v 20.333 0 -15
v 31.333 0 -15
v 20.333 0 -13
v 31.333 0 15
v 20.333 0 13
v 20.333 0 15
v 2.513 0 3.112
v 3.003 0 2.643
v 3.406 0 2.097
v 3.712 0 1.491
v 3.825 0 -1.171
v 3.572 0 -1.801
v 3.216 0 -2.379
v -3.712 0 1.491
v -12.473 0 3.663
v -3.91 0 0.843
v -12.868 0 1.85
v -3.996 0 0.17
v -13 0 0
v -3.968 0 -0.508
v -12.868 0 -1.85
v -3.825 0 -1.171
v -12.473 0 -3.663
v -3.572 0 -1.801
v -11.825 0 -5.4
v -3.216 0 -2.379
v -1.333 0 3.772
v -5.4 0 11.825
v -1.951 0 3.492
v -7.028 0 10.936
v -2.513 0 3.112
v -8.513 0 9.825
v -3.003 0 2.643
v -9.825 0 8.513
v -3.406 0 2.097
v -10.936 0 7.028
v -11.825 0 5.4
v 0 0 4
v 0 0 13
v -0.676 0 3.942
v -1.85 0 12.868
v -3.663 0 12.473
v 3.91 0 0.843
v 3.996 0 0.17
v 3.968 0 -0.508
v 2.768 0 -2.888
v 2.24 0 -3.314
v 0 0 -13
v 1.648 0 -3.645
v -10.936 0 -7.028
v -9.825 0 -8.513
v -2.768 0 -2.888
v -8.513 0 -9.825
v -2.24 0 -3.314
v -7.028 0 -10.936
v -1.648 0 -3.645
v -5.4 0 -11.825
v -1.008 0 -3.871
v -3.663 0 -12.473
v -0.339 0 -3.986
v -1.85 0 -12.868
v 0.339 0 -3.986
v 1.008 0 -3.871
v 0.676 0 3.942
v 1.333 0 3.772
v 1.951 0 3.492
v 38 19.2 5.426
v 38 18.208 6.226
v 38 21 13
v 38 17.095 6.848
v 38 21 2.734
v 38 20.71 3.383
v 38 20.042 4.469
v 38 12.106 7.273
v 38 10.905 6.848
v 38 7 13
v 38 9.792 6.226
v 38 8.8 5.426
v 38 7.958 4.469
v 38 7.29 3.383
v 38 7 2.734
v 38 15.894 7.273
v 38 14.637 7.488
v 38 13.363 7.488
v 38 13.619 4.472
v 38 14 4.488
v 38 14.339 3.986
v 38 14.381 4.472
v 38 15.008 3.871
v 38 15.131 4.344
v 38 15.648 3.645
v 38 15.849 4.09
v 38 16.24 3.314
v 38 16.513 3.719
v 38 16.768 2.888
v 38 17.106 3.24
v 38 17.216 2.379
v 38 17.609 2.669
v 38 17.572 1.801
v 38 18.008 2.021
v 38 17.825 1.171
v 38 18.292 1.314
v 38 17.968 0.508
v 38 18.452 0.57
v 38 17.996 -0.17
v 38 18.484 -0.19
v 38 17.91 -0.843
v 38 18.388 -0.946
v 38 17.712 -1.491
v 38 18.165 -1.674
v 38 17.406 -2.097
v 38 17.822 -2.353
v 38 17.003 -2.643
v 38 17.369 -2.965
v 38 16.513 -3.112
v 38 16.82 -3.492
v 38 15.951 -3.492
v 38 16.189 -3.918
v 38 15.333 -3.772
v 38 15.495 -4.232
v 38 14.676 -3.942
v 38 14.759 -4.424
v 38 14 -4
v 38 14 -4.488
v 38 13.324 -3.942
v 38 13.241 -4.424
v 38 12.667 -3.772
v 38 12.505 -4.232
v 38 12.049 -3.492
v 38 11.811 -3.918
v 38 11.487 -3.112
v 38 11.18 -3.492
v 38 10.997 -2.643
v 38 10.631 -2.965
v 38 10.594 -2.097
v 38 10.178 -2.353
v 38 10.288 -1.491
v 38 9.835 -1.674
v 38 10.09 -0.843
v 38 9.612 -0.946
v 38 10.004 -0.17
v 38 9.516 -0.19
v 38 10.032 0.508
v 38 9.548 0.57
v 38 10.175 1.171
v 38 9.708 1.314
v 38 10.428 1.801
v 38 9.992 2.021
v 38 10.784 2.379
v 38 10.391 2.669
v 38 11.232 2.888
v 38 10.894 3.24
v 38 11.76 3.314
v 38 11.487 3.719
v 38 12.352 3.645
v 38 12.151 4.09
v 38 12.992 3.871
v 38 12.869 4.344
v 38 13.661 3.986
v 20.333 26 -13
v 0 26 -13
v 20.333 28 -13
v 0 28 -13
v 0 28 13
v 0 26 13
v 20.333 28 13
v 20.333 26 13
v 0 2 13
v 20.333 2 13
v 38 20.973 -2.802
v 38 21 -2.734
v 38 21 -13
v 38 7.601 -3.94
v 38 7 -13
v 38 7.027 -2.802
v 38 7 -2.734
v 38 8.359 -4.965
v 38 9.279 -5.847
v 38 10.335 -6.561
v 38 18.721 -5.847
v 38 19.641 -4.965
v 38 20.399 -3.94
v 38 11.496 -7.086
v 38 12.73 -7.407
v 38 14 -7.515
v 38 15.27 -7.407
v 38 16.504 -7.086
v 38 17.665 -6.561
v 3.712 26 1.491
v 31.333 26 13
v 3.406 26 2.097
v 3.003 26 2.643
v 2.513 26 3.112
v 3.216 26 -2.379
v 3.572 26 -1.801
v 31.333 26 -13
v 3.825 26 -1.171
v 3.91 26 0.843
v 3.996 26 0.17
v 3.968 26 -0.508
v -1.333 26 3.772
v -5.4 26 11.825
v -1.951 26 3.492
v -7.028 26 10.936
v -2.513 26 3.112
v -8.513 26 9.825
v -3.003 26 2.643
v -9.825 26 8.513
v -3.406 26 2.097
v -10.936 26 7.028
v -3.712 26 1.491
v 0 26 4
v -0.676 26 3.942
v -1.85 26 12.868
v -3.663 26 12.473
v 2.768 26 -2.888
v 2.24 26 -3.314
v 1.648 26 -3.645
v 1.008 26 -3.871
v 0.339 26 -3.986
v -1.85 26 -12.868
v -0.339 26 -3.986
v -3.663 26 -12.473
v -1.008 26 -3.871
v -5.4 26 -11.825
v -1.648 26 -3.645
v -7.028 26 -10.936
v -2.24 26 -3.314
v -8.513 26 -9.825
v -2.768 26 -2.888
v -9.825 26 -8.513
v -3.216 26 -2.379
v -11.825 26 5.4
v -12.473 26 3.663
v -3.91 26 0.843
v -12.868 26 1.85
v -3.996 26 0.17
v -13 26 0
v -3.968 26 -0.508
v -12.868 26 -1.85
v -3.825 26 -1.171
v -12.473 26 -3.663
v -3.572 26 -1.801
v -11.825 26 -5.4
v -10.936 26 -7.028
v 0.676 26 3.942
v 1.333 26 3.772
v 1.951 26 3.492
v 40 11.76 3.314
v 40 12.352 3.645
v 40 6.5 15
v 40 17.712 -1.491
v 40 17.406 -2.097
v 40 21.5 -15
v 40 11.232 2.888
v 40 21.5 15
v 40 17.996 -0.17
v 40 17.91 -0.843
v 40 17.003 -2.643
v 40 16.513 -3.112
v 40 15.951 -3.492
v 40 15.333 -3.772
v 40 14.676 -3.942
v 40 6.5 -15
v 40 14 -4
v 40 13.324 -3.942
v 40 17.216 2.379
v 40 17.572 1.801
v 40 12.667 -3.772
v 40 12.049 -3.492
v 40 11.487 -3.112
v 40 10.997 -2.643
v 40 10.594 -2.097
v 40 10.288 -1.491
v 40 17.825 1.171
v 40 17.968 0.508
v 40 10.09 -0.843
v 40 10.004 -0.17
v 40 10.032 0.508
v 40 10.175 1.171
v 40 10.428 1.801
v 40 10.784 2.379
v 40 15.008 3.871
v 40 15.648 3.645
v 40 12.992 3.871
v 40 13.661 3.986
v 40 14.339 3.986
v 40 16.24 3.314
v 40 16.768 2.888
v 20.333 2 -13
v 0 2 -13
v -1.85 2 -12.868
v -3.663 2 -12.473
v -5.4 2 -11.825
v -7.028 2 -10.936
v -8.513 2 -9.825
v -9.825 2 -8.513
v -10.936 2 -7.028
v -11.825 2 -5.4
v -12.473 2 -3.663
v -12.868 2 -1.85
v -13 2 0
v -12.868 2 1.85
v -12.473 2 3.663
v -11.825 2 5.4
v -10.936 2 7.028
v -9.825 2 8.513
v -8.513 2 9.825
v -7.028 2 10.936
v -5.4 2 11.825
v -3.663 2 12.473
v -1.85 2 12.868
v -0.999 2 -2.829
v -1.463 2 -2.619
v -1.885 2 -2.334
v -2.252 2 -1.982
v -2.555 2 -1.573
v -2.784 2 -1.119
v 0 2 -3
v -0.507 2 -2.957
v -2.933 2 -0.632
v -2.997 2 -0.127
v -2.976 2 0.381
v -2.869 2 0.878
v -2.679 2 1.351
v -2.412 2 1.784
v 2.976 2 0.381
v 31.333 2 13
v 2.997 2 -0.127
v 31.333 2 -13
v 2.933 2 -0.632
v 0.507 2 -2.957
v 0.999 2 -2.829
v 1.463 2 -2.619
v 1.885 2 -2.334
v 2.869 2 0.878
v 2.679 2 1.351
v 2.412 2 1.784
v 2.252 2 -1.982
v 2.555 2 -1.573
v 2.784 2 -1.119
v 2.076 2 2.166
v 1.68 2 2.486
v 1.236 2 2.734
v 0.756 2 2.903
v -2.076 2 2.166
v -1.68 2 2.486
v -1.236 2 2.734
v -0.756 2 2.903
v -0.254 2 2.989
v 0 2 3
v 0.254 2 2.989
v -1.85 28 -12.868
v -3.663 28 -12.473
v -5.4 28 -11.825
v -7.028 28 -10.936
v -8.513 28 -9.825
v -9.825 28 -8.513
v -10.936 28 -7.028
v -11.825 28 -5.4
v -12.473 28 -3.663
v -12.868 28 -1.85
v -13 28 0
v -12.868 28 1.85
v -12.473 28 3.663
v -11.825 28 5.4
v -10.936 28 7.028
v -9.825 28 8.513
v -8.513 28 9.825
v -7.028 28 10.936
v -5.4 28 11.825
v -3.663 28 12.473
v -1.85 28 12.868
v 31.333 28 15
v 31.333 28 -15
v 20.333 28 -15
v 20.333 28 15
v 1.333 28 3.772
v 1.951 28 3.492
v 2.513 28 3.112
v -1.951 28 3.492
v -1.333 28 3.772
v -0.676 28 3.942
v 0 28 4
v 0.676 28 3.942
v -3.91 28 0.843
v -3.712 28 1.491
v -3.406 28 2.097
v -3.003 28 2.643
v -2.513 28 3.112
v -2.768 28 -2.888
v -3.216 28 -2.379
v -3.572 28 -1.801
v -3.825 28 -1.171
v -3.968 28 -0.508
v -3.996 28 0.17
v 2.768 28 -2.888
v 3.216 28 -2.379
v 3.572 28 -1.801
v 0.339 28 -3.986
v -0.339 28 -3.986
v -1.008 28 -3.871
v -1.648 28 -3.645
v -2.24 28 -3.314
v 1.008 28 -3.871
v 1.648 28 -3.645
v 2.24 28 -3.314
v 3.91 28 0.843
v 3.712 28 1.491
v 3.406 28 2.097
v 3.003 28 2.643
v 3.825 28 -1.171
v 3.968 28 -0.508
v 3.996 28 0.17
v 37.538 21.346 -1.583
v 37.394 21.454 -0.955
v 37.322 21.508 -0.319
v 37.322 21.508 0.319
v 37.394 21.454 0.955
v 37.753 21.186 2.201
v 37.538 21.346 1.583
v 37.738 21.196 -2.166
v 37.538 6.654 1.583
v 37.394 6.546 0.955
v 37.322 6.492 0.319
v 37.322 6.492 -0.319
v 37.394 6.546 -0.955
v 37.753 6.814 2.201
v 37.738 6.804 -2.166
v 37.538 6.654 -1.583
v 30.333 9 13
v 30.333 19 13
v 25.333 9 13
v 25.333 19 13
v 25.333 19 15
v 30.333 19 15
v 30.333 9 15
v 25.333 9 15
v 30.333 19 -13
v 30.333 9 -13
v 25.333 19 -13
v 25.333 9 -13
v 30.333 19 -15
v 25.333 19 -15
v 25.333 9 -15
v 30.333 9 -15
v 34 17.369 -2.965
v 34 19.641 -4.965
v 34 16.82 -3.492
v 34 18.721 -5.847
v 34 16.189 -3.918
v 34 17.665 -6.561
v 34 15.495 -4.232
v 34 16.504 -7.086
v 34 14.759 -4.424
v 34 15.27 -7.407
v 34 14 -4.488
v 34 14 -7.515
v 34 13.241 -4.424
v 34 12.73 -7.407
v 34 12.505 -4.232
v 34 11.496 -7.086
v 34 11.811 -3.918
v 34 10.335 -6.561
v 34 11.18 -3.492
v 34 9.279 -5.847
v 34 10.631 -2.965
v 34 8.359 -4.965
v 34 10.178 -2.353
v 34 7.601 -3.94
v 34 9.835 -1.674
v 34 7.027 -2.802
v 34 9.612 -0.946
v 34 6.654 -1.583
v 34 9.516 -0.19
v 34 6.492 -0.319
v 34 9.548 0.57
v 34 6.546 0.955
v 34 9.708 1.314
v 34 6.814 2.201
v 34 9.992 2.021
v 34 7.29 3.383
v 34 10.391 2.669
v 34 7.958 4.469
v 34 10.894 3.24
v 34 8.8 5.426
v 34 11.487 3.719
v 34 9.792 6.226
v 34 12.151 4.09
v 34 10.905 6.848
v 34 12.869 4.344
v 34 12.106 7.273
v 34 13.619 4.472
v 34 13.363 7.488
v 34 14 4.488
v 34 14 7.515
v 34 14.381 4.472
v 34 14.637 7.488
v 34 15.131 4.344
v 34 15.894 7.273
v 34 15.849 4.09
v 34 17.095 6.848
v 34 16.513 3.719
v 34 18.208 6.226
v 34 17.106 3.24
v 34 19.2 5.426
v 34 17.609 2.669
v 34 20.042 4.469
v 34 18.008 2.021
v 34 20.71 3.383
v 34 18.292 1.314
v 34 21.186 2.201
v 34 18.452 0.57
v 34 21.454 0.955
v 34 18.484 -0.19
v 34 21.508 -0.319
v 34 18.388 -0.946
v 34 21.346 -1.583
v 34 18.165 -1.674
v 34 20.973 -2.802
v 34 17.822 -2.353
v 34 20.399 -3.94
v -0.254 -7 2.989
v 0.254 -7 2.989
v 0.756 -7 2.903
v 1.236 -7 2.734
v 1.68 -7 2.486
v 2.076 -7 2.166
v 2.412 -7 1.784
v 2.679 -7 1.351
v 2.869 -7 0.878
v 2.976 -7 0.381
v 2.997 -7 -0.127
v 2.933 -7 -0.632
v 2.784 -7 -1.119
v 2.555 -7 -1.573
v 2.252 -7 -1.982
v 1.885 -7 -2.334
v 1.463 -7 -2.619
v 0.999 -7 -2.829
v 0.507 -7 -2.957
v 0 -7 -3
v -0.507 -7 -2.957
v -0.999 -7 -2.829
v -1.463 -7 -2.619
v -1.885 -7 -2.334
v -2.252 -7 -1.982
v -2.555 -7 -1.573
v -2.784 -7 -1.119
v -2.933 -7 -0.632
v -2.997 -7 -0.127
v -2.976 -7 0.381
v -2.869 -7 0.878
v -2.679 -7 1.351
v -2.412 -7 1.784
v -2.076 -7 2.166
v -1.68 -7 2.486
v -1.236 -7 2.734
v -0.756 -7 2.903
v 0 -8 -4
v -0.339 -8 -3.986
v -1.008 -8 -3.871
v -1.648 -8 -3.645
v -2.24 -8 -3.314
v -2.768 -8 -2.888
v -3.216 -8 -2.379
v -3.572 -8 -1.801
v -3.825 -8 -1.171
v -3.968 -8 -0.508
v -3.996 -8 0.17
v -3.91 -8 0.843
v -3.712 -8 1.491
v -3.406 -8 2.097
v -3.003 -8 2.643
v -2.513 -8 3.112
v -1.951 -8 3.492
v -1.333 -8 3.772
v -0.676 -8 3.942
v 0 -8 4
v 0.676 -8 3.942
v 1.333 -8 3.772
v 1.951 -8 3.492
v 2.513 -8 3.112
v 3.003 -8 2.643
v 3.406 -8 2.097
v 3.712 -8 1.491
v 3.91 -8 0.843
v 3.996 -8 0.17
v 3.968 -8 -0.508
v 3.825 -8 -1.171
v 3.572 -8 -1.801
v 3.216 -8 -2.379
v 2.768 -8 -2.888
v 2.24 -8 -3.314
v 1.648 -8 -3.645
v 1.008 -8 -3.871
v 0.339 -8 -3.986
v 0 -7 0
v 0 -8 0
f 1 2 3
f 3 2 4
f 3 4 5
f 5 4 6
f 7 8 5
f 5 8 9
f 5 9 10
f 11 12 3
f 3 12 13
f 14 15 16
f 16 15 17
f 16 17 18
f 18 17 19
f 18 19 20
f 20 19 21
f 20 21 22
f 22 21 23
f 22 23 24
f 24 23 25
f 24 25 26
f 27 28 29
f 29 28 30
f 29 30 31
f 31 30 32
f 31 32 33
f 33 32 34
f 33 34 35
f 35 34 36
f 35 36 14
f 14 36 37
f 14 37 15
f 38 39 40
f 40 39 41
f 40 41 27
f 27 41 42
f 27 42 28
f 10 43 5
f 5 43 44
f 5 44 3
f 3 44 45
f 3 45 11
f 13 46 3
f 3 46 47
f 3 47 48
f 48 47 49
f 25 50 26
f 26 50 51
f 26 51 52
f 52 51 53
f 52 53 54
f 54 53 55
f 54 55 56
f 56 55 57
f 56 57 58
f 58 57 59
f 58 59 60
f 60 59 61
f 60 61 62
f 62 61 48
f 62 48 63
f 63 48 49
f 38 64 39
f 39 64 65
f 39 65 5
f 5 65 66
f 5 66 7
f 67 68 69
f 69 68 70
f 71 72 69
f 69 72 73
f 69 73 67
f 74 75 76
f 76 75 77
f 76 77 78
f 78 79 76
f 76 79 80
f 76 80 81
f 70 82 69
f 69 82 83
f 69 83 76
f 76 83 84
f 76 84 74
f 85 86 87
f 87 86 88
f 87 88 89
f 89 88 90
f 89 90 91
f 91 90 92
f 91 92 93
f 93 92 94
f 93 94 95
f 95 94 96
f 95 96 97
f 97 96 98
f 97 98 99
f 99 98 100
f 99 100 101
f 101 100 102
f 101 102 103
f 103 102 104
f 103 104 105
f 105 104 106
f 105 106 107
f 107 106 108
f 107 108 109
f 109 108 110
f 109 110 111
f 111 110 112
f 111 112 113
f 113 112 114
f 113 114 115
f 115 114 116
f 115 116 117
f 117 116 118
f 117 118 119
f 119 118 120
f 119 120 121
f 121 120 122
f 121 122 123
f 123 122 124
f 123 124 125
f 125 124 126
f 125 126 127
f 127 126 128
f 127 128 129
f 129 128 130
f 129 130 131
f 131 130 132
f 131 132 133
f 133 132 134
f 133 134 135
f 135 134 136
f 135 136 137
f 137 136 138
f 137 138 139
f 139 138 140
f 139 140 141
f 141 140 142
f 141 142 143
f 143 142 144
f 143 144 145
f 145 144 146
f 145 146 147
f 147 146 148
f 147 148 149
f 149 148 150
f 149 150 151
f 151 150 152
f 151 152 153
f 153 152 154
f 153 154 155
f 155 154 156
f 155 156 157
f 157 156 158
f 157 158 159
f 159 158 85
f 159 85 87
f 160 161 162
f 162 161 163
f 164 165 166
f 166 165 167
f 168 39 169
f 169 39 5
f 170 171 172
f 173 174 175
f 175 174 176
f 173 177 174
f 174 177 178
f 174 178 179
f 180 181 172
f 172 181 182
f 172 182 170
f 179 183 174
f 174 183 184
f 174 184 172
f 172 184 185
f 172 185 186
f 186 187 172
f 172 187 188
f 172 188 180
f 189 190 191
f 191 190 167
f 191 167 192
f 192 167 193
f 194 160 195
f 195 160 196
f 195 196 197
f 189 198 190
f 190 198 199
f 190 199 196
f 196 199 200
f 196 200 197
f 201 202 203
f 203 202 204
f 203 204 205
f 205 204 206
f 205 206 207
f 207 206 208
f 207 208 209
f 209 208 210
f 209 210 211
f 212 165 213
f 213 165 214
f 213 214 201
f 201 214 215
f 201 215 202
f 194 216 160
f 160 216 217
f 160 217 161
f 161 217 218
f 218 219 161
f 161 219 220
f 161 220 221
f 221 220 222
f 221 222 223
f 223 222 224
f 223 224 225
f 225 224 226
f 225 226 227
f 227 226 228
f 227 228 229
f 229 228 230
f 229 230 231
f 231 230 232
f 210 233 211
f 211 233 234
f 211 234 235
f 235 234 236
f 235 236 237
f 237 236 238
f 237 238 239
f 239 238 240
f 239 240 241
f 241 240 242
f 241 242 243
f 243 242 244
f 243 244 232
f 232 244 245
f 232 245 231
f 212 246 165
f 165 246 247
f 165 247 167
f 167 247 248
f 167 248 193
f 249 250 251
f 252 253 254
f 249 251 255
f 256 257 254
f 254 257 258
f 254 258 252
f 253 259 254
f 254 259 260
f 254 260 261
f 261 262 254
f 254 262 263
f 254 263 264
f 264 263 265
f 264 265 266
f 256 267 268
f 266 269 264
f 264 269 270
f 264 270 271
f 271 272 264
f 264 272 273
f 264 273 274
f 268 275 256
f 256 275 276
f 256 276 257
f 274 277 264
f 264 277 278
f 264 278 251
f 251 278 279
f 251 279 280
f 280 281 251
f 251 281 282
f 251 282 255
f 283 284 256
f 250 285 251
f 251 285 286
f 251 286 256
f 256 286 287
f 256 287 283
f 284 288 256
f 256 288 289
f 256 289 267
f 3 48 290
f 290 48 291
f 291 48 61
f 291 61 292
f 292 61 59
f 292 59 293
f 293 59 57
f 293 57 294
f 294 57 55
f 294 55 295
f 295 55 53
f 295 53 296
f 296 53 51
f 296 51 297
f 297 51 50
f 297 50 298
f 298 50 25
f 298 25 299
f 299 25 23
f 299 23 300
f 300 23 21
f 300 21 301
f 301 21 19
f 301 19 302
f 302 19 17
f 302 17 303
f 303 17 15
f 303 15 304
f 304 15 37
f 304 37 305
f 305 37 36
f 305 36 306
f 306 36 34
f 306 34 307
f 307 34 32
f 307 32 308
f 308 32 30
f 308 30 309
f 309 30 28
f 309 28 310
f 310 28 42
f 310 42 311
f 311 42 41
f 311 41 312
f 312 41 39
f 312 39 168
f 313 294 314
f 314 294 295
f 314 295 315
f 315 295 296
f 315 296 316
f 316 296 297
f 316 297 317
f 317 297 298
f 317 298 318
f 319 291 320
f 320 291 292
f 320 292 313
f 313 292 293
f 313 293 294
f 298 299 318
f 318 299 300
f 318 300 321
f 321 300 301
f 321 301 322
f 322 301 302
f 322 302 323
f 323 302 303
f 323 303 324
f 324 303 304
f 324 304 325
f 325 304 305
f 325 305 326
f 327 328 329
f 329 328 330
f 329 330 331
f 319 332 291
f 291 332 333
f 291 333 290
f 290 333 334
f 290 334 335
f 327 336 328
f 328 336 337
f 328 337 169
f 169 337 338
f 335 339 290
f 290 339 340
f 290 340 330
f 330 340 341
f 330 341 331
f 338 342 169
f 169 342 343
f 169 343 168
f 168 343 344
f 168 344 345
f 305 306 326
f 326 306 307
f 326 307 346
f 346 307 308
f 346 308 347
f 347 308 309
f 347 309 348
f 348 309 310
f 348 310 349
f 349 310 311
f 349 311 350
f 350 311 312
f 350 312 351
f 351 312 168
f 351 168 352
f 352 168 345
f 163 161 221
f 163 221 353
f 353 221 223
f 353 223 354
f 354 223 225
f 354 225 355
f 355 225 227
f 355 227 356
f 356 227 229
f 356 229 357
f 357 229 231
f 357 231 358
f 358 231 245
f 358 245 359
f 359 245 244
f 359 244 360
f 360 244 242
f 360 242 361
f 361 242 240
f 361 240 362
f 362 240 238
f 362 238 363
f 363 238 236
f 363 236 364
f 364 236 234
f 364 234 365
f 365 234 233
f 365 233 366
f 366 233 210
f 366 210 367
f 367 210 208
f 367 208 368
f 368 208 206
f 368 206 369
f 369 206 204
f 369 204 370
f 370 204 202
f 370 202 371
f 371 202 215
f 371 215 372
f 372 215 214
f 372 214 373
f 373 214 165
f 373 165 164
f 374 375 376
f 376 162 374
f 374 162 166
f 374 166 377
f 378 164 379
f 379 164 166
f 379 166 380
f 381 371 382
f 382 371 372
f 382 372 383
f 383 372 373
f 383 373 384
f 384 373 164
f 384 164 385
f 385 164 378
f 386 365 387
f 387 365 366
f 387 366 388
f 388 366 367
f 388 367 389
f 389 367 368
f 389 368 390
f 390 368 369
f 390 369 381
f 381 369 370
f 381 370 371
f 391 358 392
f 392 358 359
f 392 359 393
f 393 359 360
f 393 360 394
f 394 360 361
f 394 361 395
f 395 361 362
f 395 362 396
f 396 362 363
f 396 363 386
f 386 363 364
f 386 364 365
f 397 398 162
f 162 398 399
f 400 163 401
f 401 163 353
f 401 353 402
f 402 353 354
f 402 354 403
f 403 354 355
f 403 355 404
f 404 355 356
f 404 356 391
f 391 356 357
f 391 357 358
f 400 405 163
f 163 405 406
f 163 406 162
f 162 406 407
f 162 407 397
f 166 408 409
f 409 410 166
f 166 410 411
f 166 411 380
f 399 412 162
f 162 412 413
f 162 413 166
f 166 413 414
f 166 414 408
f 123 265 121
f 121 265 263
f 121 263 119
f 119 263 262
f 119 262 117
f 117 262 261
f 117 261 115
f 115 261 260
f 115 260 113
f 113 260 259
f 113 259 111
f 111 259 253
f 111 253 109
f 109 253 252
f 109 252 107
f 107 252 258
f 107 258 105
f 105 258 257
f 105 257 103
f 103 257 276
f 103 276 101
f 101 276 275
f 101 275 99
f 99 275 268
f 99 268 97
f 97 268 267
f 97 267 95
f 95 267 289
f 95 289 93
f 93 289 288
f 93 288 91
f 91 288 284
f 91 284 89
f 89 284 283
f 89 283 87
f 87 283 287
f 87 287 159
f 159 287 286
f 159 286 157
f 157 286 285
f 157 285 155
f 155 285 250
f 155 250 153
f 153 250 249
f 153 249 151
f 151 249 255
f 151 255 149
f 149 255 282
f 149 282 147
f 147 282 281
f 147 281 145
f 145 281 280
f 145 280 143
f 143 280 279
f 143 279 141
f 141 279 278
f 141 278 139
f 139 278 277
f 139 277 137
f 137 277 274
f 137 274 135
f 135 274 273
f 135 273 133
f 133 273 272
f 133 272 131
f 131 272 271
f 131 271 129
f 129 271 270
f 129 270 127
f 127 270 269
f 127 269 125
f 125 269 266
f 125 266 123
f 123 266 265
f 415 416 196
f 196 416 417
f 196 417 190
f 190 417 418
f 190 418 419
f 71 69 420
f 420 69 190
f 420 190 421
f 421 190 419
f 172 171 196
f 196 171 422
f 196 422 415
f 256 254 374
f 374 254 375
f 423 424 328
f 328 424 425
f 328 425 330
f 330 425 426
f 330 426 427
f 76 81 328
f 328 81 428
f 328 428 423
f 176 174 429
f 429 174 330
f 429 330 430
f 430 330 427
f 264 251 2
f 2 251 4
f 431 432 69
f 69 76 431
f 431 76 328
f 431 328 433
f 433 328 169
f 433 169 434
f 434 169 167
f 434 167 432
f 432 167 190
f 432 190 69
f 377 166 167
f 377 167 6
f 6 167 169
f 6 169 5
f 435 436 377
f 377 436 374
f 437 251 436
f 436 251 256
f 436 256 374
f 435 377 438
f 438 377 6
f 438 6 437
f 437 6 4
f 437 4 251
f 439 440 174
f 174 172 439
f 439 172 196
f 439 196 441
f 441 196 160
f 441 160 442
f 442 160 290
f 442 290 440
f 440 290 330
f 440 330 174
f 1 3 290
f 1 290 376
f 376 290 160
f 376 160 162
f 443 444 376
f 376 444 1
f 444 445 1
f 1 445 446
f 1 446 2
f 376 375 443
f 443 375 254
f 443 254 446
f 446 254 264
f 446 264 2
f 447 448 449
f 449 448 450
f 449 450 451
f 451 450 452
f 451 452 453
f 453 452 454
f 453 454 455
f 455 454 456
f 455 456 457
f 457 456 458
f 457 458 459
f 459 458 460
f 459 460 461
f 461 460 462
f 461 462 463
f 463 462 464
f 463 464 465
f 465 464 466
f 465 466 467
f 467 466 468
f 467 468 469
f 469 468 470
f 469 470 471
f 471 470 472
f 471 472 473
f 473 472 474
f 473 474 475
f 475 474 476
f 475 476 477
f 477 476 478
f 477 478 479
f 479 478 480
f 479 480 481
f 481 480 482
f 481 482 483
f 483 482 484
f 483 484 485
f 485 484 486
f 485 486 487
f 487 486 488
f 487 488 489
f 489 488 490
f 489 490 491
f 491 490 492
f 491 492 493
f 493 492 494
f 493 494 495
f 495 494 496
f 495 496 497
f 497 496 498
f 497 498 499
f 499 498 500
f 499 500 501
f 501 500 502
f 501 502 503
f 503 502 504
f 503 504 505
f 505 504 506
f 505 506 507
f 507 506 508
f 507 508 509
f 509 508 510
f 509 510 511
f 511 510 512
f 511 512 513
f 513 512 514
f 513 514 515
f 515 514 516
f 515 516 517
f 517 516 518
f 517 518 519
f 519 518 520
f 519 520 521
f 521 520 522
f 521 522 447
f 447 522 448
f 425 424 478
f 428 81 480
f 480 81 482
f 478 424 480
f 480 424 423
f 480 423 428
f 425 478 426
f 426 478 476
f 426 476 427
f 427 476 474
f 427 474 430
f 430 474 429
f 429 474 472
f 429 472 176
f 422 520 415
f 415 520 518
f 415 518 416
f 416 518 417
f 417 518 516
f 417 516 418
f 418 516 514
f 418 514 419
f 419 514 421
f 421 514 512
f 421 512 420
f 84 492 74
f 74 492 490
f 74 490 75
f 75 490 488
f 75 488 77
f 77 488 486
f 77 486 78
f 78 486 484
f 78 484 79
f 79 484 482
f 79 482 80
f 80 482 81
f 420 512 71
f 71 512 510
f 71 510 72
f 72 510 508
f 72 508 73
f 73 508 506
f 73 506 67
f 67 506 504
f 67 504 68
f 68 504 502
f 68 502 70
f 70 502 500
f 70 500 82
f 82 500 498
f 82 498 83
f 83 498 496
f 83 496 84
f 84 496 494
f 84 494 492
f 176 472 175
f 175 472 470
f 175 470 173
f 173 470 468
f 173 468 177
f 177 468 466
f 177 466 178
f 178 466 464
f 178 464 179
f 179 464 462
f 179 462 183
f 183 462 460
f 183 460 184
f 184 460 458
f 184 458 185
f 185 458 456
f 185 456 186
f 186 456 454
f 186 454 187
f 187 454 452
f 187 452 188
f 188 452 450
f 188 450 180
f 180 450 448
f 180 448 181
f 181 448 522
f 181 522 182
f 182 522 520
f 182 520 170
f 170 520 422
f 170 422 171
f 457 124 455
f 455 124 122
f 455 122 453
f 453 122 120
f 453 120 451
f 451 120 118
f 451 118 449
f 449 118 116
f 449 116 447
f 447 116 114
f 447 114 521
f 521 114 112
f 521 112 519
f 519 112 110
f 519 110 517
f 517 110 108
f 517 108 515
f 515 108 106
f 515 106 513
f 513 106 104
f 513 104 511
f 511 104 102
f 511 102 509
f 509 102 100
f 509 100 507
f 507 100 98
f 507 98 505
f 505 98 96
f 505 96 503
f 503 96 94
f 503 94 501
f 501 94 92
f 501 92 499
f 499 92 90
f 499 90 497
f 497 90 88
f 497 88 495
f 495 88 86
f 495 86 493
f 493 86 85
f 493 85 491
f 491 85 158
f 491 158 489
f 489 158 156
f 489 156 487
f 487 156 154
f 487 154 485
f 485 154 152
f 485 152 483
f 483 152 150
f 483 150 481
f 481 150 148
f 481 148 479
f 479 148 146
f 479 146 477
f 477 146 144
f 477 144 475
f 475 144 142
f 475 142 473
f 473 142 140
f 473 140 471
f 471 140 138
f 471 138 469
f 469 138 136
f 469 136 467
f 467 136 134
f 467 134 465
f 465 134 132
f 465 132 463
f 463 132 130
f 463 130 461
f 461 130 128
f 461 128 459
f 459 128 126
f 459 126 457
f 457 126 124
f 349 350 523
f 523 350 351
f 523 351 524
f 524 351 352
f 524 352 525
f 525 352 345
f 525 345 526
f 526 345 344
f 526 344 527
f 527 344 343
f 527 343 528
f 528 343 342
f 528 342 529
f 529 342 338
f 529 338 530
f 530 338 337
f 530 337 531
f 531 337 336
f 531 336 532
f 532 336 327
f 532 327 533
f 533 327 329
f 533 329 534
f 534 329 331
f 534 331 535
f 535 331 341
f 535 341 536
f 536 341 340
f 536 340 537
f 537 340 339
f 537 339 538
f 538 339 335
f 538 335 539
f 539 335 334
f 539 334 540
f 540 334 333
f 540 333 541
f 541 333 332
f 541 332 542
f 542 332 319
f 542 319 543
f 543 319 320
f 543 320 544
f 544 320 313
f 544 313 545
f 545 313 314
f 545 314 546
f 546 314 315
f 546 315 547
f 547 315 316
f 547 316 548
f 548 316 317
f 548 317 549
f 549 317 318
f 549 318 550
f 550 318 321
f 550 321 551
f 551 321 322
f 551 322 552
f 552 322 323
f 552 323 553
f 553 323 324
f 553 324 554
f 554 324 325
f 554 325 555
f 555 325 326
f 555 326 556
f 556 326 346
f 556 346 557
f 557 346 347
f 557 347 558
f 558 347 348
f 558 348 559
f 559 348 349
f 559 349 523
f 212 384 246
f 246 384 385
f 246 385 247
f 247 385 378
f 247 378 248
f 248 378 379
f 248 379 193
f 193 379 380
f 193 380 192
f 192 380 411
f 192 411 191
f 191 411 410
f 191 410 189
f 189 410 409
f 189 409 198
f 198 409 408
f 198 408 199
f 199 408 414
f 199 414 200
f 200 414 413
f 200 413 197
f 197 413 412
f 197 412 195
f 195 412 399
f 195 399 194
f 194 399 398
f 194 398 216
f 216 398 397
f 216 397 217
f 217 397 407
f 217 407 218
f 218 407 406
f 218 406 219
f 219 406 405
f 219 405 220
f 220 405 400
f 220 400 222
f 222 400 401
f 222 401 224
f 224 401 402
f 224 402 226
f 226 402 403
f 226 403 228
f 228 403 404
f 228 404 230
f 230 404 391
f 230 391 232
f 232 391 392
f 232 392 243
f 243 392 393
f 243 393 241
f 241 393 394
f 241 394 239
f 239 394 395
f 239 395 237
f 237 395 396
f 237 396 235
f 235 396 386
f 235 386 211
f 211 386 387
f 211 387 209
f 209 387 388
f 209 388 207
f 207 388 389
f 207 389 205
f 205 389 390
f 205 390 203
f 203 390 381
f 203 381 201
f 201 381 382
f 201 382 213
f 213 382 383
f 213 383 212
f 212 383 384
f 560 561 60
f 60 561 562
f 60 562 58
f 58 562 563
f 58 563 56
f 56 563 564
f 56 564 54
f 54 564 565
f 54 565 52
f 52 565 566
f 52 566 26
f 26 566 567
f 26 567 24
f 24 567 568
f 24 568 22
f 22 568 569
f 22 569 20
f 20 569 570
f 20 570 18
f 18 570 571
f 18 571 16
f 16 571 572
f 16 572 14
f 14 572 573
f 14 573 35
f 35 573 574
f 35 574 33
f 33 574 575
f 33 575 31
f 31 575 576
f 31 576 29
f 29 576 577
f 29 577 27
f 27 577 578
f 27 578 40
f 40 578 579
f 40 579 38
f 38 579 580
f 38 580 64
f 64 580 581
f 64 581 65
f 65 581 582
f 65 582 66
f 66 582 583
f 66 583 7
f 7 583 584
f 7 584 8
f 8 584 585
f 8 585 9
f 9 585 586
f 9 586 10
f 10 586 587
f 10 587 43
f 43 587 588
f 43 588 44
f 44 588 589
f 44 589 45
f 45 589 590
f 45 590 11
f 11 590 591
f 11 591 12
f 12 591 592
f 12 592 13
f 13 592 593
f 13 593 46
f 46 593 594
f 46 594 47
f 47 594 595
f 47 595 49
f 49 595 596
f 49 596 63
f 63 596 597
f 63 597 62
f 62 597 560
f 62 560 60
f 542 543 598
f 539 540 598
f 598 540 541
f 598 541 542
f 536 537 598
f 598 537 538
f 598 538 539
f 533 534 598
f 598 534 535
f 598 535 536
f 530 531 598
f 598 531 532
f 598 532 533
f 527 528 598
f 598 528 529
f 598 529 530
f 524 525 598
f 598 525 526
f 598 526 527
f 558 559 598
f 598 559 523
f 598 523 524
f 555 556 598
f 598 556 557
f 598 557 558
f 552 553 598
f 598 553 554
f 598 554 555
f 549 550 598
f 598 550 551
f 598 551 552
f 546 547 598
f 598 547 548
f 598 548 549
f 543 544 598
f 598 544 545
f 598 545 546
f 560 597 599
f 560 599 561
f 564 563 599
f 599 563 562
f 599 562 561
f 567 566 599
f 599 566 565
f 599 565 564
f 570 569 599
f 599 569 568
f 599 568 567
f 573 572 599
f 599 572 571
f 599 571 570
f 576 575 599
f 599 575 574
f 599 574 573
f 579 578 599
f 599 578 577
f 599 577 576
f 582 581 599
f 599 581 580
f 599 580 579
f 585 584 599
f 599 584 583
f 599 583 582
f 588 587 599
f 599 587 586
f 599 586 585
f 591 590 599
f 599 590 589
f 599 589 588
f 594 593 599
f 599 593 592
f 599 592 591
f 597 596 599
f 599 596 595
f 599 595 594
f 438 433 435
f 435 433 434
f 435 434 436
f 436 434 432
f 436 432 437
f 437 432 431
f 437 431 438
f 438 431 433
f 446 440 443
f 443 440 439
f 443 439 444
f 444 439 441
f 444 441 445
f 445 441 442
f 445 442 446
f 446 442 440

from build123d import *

# Parameters (mm, degrees)
BOSS_EXTRUDE1_DEPTH = 2
SKETCH2_W           = 2
SKETCH2_H           = 26
BOSS_EXTRUDE2_DEPTH = 24
BOSS_EXTRUDE3_DEPTH = 2
SKETCH4_R           = 4
CUT_EXTRUDE1_DEPTH  = 2
BOSS_EXTRUDE4_DEPTH = 26
CUT_EXTRUDE2_DEPTH  = 26
BOSS_EXTRUDE5_DEPTH = 2
SKETCH8_R           = 7.515013345
SKETCH8_R_2         = 4.48835621
BOSS_EXTRUDE6_DEPTH = 4
SKETCH9_R           = 3
CUT_EXTRUDE3_DEPTH  = 10
SKETCH10_R          = 4
CUT_EXTRUDE4_DEPTH  = 10
SKETCH11_R          = 4
SKETCH11_R_2        = 3
BOSS_EXTRUDE7_DEPTH = 7
SKETCH12_R          = 4
BOSS_EXTRUDE8_DEPTH = 1
SKETCH13_W          = 5
SKETCH13_H          = 10
CUT_EXTRUDE5_DEPTH  = 10
SKETCH14_W          = 5
SKETCH14_H          = 10
CUT_EXTRUDE6_DEPTH  = 4


with BuildPart() as part:
    # Sketch1 → Boss-Extrude1 (new body)
    with BuildSketch(Plane(origin=(0, 0, 0), x_dir=(1, 0, 0), z_dir=(0, 1, 0))):
        with BuildLine():
            Line((40, 13), (0, 13))
            ThreePointArc((0, 13), (-13, 0), (0, -13))
            Line((0, -13), (40, -13))
            Line((40, -13), (40, 13))
        make_face()
    extrude(amount=BOSS_EXTRUDE1_DEPTH)

    # Sketch2 → Boss-Extrude2 (add)
    with BuildSketch(Plane(origin=(0, 2, 0), x_dir=(1, 0, 0), z_dir=(0, 1, 0))):
        with Locations((39, 0)):
            Rectangle(SKETCH2_W, SKETCH2_H)
    extrude(amount=BOSS_EXTRUDE2_DEPTH)

    # Sketch3 → Boss-Extrude3 (add)
    with BuildSketch(Plane(origin=(0, 26, 0), x_dir=(1, 0, 0), z_dir=(0, 1, 0))):
        with BuildLine():
            Line((40, -13), (0, -13))
            ThreePointArc((0, -13), (-13, 0), (0, 13))
            Line((0, 13), (40, 13))
            Line((40, 13), (40, -13))
        make_face()
    extrude(amount=BOSS_EXTRUDE3_DEPTH)

    # Sketch4 → Cut-Extrude1 (cut)
    with BuildSketch(Plane(origin=(40, 0, 0), x_dir=(0, 0, -1), z_dir=(1, 0, 0))):
        with Locations((0, 14)):
            Circle(SKETCH4_R)
    extrude(amount=-CUT_EXTRUDE1_DEPTH, mode=Mode.SUBTRACT)

    # Sketch5 → Boss-Extrude4 (add)
    with BuildSketch(Plane.XY.offset(13)):
        Polygon((38, 5), (34, 2), (31.333333333, 0), (31.333333333, 2), (40, 8.5), (40, 6.5), align=None)
        Polygon((40, 21.5), (38, 23), (34, 26), (31.333333333, 28), (31.333333333, 26), (40, 19.5), align=None)
    extrude(amount=-BOSS_EXTRUDE4_DEPTH)

    # Sketch6 → Cut-Extrude2 (cut)
    with BuildSketch(Plane.XY.offset(13)):
        Polygon((38, 5), (31.333333333, 0), (40, 0), (40, 6.5), align=None)
        Polygon((40, 28), (40, 21.5), (38, 23), (31.333333333, 28), align=None)
    extrude(amount=-CUT_EXTRUDE2_DEPTH, mode=Mode.SUBTRACT)

    # Sketch7 → Boss-Extrude5 (add)
    with BuildSketch(Plane.XY.offset(13)):
        Polygon((40, 21.5), (31.333333333, 28), (20.333333333, 28), (20.333333333, 0), (31.333333333, 0), (40, 6.5), align=None)
    boss_extrude5 = extrude(amount=BOSS_EXTRUDE5_DEPTH)

    # Mirror1: Boss-Extrude5 across plane
    add(boss_extrude5.mirror(Plane.XY))

    # Sketch8 → Boss-Extrude6 (add)
    with BuildSketch(Plane.ZY.offset(-38)):
        with Locations(Location((0, 14, 0), (0, 0, 111.335065793))):
            Circle(SKETCH8_R)
        with Locations((0, 14)):
            Circle(SKETCH8_R_2, mode=Mode.SUBTRACT)
    extrude(amount=BOSS_EXTRUDE6_DEPTH)

    # Sketch9 → Cut-Extrude3 (cut)
    with BuildSketch(Plane.XZ):
        with Locations(Location((0, 0, 0), (0, 0, 270))):
            Circle(SKETCH9_R)
    extrude(amount=-CUT_EXTRUDE3_DEPTH, mode=Mode.SUBTRACT)

    # Sketch10 → Cut-Extrude4 (cut)
    with BuildSketch(Plane(origin=(0, 28, 0), x_dir=(1, 0, 0), z_dir=(0, 1, 0))):
        with Locations(Location((0, 0, 0), (0, 0, 270))):
            Circle(SKETCH10_R)
    extrude(amount=-CUT_EXTRUDE4_DEPTH, mode=Mode.SUBTRACT)

    # Sketch11 → Boss-Extrude7 (add)
    with BuildSketch(Plane.XZ):
        with Locations(Location((0, 0, 0), (0, 0, 90))):
            Circle(SKETCH11_R)
        with Locations(Location((0, 0, 0), (0, 0, 270))):
            Circle(SKETCH11_R_2, mode=Mode.SUBTRACT)
    extrude(amount=BOSS_EXTRUDE7_DEPTH)

    # Sketch12 → Boss-Extrude8 (add)
    with BuildSketch(Plane.XZ.offset(7)):
        with Locations(Location((0, 0, 0), (0, 0, 90))):
            Circle(SKETCH12_R)
    extrude(amount=BOSS_EXTRUDE8_DEPTH)

    # Sketch13 → Cut-Extrude5 (cut)
    with BuildSketch(Plane.XY.offset(15)):
        with Locations((27.833333333, 14)):
            Rectangle(SKETCH13_W, SKETCH13_H)
    extrude(amount=-CUT_EXTRUDE5_DEPTH, mode=Mode.SUBTRACT)

    # Sketch14 → Cut-Extrude6 (cut)
    with BuildSketch(Plane(origin=(0, 0, -15), x_dir=(-1, 0, 0), z_dir=(0, 0, -1))):
        with Locations((-27.833333333, 14)):
            Rectangle(SKETCH14_W, SKETCH14_H)
    extrude(amount=-CUT_EXTRUDE6_DEPTH, mode=Mode.SUBTRACT)


solid = part.part
